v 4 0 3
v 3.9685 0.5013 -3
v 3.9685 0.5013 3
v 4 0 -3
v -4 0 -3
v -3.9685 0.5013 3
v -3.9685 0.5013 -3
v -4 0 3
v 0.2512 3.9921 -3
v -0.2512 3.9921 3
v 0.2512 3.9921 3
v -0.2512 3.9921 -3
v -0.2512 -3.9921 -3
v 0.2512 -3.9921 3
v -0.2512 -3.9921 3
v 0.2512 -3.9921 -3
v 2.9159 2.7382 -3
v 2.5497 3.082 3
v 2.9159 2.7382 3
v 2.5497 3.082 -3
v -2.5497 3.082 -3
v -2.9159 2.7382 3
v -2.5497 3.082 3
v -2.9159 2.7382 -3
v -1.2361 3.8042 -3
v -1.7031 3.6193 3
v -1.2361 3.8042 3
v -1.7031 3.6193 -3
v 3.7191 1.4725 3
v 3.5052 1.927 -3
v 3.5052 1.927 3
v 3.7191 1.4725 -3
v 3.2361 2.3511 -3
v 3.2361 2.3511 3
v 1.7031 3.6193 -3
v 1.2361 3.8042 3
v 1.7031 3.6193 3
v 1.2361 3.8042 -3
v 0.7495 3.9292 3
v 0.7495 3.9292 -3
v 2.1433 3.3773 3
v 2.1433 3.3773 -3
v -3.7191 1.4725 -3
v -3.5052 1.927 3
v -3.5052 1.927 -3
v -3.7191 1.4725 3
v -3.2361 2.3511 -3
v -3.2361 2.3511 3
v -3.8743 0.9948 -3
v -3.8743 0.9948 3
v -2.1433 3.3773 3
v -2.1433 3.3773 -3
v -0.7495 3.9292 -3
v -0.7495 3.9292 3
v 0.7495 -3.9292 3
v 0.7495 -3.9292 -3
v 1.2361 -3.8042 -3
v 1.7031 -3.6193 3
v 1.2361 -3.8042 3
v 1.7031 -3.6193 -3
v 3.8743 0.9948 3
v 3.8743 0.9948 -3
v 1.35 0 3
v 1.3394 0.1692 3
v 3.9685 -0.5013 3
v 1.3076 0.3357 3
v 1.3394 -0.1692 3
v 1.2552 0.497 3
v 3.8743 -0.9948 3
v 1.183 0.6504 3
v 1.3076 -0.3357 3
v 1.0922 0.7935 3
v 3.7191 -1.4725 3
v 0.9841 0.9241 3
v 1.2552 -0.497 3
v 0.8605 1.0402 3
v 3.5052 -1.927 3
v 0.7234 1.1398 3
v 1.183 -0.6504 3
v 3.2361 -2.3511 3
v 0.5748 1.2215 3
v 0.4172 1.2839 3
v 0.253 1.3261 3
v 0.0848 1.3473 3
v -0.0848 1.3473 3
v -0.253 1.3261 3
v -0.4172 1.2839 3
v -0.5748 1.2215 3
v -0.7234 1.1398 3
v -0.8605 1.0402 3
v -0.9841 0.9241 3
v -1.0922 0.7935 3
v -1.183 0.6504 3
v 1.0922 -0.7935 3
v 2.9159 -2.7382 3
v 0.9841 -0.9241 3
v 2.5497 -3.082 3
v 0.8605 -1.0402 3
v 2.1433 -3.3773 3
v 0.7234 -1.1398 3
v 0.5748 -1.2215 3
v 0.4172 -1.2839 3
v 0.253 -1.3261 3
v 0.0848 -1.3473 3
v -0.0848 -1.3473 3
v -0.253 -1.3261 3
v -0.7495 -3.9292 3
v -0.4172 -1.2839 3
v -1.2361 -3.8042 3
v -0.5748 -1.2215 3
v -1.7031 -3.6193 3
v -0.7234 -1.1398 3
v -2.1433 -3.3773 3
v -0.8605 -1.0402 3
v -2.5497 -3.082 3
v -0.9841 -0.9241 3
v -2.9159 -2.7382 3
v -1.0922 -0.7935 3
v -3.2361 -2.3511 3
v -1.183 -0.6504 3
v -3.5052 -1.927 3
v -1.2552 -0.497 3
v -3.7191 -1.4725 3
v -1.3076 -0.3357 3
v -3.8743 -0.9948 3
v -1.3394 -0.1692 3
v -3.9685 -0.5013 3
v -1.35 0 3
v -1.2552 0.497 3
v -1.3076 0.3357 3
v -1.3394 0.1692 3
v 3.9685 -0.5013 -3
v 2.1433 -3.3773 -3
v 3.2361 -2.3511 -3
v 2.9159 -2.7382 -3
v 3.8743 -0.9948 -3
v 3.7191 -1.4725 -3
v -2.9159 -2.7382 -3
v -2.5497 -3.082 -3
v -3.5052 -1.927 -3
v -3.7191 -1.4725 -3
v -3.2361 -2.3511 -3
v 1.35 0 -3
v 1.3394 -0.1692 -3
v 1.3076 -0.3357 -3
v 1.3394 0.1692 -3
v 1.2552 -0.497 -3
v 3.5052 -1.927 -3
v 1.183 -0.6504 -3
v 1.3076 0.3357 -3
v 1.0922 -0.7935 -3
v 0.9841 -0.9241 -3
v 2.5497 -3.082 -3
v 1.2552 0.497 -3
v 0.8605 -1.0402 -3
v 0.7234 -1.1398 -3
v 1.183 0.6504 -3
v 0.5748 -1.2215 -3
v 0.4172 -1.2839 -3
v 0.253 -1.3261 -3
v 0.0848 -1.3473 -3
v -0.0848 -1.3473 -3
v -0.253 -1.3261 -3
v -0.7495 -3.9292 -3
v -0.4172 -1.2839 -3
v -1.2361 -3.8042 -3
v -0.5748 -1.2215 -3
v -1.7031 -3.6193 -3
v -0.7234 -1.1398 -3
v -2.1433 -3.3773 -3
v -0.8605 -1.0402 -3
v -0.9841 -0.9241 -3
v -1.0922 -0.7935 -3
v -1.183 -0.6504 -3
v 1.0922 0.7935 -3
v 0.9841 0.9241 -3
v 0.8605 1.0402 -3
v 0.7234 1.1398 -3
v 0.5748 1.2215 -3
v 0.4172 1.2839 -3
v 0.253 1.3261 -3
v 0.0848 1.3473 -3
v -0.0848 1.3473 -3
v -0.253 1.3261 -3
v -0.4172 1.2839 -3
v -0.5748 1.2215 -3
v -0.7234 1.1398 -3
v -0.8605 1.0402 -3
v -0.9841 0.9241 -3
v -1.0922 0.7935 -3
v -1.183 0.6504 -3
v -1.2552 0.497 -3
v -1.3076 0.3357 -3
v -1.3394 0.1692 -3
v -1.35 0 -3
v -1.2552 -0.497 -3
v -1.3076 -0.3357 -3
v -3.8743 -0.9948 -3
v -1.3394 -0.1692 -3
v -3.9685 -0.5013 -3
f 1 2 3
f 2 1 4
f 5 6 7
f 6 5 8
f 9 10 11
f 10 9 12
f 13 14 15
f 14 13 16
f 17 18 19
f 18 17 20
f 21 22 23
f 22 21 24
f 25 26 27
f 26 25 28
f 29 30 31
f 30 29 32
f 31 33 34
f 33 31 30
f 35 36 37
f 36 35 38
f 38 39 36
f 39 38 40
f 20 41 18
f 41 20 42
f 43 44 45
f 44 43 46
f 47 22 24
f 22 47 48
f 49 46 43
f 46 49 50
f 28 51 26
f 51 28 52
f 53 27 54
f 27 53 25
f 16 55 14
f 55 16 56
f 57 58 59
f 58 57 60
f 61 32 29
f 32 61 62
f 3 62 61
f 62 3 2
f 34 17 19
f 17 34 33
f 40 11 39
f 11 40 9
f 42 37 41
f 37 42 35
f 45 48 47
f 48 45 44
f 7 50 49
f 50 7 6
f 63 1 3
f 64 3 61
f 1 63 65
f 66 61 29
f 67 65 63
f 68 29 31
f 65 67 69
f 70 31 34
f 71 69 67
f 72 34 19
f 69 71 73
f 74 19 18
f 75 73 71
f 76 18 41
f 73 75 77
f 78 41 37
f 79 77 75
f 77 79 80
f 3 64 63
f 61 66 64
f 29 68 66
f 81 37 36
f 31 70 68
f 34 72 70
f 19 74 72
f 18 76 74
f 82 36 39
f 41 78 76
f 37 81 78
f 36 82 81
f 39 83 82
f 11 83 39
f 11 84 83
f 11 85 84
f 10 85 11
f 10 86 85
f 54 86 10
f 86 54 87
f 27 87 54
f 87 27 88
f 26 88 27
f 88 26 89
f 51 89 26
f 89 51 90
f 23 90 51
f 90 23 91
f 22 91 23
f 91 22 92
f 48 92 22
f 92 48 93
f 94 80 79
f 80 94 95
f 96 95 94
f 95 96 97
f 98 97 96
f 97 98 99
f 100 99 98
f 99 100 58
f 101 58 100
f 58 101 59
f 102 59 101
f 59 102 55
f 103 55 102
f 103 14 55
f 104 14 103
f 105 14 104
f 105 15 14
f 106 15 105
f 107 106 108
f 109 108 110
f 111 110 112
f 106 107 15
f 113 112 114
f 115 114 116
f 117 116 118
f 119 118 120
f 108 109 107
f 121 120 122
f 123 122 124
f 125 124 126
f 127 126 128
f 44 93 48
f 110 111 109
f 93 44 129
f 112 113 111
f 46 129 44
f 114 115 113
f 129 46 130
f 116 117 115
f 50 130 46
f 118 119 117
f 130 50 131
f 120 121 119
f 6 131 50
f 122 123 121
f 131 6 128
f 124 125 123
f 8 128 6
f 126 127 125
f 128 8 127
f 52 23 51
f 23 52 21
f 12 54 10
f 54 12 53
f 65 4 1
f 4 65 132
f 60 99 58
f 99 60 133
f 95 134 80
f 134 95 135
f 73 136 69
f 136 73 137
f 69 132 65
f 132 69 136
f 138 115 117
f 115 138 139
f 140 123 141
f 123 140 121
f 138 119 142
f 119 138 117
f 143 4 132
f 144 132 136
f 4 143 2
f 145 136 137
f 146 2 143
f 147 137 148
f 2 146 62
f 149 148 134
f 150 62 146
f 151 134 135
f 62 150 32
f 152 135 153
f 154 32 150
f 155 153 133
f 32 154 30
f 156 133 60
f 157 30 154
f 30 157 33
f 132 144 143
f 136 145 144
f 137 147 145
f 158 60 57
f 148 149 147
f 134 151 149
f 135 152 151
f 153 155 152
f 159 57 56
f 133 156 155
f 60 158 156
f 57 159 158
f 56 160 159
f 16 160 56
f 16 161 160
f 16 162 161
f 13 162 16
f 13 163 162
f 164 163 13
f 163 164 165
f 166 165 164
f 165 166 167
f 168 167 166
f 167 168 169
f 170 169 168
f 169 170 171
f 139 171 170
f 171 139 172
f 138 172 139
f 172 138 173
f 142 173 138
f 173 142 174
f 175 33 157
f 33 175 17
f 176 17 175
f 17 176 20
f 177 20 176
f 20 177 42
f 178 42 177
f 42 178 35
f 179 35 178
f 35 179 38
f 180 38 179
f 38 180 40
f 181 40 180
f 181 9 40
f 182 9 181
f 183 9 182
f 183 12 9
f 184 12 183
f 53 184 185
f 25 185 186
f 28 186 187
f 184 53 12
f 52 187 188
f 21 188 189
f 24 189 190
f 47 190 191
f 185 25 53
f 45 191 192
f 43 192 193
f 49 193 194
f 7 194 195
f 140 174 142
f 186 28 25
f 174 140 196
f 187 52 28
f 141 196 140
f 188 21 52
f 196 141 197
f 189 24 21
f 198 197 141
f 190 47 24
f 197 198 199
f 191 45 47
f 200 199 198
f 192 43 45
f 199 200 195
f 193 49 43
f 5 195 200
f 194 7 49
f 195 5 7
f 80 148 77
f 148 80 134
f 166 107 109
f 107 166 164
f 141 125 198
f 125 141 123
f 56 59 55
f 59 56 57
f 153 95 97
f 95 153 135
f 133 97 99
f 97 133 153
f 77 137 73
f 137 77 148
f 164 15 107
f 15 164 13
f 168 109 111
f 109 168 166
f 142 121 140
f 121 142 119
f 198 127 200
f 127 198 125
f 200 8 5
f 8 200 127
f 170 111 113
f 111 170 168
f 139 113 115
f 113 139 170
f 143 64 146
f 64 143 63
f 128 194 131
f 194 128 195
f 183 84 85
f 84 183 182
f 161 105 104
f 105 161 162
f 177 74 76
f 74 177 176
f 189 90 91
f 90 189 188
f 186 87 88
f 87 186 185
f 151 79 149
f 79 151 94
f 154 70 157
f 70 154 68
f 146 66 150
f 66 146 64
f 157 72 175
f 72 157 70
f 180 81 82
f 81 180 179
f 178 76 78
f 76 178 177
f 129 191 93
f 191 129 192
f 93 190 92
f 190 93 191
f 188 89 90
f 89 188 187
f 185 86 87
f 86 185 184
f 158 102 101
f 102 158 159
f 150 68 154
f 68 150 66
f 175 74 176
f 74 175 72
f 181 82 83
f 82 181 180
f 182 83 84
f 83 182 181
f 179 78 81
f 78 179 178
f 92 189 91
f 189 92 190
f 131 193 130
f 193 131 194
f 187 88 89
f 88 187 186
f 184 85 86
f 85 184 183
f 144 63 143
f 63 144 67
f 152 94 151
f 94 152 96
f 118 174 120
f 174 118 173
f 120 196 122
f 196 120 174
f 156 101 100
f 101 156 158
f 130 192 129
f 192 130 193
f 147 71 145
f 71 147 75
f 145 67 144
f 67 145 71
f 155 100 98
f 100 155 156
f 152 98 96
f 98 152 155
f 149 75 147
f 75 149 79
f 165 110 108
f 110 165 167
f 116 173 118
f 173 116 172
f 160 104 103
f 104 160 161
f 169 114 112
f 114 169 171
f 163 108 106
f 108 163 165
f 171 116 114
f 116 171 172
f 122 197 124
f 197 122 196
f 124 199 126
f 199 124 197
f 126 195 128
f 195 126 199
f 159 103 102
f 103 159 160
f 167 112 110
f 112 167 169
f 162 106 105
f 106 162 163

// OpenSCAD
$fn = 50;


difference() {
	union() {
		translate(v = [0, 0, -3.0000000000]) {
			cylinder(h = 6, r = 4.0000000000);
		}
	}
	union() {
		translate(v = [0, 0, -100.0000000000]) {
			cylinder(h = 200, r = 1.3500000000);
		}
	}
}
